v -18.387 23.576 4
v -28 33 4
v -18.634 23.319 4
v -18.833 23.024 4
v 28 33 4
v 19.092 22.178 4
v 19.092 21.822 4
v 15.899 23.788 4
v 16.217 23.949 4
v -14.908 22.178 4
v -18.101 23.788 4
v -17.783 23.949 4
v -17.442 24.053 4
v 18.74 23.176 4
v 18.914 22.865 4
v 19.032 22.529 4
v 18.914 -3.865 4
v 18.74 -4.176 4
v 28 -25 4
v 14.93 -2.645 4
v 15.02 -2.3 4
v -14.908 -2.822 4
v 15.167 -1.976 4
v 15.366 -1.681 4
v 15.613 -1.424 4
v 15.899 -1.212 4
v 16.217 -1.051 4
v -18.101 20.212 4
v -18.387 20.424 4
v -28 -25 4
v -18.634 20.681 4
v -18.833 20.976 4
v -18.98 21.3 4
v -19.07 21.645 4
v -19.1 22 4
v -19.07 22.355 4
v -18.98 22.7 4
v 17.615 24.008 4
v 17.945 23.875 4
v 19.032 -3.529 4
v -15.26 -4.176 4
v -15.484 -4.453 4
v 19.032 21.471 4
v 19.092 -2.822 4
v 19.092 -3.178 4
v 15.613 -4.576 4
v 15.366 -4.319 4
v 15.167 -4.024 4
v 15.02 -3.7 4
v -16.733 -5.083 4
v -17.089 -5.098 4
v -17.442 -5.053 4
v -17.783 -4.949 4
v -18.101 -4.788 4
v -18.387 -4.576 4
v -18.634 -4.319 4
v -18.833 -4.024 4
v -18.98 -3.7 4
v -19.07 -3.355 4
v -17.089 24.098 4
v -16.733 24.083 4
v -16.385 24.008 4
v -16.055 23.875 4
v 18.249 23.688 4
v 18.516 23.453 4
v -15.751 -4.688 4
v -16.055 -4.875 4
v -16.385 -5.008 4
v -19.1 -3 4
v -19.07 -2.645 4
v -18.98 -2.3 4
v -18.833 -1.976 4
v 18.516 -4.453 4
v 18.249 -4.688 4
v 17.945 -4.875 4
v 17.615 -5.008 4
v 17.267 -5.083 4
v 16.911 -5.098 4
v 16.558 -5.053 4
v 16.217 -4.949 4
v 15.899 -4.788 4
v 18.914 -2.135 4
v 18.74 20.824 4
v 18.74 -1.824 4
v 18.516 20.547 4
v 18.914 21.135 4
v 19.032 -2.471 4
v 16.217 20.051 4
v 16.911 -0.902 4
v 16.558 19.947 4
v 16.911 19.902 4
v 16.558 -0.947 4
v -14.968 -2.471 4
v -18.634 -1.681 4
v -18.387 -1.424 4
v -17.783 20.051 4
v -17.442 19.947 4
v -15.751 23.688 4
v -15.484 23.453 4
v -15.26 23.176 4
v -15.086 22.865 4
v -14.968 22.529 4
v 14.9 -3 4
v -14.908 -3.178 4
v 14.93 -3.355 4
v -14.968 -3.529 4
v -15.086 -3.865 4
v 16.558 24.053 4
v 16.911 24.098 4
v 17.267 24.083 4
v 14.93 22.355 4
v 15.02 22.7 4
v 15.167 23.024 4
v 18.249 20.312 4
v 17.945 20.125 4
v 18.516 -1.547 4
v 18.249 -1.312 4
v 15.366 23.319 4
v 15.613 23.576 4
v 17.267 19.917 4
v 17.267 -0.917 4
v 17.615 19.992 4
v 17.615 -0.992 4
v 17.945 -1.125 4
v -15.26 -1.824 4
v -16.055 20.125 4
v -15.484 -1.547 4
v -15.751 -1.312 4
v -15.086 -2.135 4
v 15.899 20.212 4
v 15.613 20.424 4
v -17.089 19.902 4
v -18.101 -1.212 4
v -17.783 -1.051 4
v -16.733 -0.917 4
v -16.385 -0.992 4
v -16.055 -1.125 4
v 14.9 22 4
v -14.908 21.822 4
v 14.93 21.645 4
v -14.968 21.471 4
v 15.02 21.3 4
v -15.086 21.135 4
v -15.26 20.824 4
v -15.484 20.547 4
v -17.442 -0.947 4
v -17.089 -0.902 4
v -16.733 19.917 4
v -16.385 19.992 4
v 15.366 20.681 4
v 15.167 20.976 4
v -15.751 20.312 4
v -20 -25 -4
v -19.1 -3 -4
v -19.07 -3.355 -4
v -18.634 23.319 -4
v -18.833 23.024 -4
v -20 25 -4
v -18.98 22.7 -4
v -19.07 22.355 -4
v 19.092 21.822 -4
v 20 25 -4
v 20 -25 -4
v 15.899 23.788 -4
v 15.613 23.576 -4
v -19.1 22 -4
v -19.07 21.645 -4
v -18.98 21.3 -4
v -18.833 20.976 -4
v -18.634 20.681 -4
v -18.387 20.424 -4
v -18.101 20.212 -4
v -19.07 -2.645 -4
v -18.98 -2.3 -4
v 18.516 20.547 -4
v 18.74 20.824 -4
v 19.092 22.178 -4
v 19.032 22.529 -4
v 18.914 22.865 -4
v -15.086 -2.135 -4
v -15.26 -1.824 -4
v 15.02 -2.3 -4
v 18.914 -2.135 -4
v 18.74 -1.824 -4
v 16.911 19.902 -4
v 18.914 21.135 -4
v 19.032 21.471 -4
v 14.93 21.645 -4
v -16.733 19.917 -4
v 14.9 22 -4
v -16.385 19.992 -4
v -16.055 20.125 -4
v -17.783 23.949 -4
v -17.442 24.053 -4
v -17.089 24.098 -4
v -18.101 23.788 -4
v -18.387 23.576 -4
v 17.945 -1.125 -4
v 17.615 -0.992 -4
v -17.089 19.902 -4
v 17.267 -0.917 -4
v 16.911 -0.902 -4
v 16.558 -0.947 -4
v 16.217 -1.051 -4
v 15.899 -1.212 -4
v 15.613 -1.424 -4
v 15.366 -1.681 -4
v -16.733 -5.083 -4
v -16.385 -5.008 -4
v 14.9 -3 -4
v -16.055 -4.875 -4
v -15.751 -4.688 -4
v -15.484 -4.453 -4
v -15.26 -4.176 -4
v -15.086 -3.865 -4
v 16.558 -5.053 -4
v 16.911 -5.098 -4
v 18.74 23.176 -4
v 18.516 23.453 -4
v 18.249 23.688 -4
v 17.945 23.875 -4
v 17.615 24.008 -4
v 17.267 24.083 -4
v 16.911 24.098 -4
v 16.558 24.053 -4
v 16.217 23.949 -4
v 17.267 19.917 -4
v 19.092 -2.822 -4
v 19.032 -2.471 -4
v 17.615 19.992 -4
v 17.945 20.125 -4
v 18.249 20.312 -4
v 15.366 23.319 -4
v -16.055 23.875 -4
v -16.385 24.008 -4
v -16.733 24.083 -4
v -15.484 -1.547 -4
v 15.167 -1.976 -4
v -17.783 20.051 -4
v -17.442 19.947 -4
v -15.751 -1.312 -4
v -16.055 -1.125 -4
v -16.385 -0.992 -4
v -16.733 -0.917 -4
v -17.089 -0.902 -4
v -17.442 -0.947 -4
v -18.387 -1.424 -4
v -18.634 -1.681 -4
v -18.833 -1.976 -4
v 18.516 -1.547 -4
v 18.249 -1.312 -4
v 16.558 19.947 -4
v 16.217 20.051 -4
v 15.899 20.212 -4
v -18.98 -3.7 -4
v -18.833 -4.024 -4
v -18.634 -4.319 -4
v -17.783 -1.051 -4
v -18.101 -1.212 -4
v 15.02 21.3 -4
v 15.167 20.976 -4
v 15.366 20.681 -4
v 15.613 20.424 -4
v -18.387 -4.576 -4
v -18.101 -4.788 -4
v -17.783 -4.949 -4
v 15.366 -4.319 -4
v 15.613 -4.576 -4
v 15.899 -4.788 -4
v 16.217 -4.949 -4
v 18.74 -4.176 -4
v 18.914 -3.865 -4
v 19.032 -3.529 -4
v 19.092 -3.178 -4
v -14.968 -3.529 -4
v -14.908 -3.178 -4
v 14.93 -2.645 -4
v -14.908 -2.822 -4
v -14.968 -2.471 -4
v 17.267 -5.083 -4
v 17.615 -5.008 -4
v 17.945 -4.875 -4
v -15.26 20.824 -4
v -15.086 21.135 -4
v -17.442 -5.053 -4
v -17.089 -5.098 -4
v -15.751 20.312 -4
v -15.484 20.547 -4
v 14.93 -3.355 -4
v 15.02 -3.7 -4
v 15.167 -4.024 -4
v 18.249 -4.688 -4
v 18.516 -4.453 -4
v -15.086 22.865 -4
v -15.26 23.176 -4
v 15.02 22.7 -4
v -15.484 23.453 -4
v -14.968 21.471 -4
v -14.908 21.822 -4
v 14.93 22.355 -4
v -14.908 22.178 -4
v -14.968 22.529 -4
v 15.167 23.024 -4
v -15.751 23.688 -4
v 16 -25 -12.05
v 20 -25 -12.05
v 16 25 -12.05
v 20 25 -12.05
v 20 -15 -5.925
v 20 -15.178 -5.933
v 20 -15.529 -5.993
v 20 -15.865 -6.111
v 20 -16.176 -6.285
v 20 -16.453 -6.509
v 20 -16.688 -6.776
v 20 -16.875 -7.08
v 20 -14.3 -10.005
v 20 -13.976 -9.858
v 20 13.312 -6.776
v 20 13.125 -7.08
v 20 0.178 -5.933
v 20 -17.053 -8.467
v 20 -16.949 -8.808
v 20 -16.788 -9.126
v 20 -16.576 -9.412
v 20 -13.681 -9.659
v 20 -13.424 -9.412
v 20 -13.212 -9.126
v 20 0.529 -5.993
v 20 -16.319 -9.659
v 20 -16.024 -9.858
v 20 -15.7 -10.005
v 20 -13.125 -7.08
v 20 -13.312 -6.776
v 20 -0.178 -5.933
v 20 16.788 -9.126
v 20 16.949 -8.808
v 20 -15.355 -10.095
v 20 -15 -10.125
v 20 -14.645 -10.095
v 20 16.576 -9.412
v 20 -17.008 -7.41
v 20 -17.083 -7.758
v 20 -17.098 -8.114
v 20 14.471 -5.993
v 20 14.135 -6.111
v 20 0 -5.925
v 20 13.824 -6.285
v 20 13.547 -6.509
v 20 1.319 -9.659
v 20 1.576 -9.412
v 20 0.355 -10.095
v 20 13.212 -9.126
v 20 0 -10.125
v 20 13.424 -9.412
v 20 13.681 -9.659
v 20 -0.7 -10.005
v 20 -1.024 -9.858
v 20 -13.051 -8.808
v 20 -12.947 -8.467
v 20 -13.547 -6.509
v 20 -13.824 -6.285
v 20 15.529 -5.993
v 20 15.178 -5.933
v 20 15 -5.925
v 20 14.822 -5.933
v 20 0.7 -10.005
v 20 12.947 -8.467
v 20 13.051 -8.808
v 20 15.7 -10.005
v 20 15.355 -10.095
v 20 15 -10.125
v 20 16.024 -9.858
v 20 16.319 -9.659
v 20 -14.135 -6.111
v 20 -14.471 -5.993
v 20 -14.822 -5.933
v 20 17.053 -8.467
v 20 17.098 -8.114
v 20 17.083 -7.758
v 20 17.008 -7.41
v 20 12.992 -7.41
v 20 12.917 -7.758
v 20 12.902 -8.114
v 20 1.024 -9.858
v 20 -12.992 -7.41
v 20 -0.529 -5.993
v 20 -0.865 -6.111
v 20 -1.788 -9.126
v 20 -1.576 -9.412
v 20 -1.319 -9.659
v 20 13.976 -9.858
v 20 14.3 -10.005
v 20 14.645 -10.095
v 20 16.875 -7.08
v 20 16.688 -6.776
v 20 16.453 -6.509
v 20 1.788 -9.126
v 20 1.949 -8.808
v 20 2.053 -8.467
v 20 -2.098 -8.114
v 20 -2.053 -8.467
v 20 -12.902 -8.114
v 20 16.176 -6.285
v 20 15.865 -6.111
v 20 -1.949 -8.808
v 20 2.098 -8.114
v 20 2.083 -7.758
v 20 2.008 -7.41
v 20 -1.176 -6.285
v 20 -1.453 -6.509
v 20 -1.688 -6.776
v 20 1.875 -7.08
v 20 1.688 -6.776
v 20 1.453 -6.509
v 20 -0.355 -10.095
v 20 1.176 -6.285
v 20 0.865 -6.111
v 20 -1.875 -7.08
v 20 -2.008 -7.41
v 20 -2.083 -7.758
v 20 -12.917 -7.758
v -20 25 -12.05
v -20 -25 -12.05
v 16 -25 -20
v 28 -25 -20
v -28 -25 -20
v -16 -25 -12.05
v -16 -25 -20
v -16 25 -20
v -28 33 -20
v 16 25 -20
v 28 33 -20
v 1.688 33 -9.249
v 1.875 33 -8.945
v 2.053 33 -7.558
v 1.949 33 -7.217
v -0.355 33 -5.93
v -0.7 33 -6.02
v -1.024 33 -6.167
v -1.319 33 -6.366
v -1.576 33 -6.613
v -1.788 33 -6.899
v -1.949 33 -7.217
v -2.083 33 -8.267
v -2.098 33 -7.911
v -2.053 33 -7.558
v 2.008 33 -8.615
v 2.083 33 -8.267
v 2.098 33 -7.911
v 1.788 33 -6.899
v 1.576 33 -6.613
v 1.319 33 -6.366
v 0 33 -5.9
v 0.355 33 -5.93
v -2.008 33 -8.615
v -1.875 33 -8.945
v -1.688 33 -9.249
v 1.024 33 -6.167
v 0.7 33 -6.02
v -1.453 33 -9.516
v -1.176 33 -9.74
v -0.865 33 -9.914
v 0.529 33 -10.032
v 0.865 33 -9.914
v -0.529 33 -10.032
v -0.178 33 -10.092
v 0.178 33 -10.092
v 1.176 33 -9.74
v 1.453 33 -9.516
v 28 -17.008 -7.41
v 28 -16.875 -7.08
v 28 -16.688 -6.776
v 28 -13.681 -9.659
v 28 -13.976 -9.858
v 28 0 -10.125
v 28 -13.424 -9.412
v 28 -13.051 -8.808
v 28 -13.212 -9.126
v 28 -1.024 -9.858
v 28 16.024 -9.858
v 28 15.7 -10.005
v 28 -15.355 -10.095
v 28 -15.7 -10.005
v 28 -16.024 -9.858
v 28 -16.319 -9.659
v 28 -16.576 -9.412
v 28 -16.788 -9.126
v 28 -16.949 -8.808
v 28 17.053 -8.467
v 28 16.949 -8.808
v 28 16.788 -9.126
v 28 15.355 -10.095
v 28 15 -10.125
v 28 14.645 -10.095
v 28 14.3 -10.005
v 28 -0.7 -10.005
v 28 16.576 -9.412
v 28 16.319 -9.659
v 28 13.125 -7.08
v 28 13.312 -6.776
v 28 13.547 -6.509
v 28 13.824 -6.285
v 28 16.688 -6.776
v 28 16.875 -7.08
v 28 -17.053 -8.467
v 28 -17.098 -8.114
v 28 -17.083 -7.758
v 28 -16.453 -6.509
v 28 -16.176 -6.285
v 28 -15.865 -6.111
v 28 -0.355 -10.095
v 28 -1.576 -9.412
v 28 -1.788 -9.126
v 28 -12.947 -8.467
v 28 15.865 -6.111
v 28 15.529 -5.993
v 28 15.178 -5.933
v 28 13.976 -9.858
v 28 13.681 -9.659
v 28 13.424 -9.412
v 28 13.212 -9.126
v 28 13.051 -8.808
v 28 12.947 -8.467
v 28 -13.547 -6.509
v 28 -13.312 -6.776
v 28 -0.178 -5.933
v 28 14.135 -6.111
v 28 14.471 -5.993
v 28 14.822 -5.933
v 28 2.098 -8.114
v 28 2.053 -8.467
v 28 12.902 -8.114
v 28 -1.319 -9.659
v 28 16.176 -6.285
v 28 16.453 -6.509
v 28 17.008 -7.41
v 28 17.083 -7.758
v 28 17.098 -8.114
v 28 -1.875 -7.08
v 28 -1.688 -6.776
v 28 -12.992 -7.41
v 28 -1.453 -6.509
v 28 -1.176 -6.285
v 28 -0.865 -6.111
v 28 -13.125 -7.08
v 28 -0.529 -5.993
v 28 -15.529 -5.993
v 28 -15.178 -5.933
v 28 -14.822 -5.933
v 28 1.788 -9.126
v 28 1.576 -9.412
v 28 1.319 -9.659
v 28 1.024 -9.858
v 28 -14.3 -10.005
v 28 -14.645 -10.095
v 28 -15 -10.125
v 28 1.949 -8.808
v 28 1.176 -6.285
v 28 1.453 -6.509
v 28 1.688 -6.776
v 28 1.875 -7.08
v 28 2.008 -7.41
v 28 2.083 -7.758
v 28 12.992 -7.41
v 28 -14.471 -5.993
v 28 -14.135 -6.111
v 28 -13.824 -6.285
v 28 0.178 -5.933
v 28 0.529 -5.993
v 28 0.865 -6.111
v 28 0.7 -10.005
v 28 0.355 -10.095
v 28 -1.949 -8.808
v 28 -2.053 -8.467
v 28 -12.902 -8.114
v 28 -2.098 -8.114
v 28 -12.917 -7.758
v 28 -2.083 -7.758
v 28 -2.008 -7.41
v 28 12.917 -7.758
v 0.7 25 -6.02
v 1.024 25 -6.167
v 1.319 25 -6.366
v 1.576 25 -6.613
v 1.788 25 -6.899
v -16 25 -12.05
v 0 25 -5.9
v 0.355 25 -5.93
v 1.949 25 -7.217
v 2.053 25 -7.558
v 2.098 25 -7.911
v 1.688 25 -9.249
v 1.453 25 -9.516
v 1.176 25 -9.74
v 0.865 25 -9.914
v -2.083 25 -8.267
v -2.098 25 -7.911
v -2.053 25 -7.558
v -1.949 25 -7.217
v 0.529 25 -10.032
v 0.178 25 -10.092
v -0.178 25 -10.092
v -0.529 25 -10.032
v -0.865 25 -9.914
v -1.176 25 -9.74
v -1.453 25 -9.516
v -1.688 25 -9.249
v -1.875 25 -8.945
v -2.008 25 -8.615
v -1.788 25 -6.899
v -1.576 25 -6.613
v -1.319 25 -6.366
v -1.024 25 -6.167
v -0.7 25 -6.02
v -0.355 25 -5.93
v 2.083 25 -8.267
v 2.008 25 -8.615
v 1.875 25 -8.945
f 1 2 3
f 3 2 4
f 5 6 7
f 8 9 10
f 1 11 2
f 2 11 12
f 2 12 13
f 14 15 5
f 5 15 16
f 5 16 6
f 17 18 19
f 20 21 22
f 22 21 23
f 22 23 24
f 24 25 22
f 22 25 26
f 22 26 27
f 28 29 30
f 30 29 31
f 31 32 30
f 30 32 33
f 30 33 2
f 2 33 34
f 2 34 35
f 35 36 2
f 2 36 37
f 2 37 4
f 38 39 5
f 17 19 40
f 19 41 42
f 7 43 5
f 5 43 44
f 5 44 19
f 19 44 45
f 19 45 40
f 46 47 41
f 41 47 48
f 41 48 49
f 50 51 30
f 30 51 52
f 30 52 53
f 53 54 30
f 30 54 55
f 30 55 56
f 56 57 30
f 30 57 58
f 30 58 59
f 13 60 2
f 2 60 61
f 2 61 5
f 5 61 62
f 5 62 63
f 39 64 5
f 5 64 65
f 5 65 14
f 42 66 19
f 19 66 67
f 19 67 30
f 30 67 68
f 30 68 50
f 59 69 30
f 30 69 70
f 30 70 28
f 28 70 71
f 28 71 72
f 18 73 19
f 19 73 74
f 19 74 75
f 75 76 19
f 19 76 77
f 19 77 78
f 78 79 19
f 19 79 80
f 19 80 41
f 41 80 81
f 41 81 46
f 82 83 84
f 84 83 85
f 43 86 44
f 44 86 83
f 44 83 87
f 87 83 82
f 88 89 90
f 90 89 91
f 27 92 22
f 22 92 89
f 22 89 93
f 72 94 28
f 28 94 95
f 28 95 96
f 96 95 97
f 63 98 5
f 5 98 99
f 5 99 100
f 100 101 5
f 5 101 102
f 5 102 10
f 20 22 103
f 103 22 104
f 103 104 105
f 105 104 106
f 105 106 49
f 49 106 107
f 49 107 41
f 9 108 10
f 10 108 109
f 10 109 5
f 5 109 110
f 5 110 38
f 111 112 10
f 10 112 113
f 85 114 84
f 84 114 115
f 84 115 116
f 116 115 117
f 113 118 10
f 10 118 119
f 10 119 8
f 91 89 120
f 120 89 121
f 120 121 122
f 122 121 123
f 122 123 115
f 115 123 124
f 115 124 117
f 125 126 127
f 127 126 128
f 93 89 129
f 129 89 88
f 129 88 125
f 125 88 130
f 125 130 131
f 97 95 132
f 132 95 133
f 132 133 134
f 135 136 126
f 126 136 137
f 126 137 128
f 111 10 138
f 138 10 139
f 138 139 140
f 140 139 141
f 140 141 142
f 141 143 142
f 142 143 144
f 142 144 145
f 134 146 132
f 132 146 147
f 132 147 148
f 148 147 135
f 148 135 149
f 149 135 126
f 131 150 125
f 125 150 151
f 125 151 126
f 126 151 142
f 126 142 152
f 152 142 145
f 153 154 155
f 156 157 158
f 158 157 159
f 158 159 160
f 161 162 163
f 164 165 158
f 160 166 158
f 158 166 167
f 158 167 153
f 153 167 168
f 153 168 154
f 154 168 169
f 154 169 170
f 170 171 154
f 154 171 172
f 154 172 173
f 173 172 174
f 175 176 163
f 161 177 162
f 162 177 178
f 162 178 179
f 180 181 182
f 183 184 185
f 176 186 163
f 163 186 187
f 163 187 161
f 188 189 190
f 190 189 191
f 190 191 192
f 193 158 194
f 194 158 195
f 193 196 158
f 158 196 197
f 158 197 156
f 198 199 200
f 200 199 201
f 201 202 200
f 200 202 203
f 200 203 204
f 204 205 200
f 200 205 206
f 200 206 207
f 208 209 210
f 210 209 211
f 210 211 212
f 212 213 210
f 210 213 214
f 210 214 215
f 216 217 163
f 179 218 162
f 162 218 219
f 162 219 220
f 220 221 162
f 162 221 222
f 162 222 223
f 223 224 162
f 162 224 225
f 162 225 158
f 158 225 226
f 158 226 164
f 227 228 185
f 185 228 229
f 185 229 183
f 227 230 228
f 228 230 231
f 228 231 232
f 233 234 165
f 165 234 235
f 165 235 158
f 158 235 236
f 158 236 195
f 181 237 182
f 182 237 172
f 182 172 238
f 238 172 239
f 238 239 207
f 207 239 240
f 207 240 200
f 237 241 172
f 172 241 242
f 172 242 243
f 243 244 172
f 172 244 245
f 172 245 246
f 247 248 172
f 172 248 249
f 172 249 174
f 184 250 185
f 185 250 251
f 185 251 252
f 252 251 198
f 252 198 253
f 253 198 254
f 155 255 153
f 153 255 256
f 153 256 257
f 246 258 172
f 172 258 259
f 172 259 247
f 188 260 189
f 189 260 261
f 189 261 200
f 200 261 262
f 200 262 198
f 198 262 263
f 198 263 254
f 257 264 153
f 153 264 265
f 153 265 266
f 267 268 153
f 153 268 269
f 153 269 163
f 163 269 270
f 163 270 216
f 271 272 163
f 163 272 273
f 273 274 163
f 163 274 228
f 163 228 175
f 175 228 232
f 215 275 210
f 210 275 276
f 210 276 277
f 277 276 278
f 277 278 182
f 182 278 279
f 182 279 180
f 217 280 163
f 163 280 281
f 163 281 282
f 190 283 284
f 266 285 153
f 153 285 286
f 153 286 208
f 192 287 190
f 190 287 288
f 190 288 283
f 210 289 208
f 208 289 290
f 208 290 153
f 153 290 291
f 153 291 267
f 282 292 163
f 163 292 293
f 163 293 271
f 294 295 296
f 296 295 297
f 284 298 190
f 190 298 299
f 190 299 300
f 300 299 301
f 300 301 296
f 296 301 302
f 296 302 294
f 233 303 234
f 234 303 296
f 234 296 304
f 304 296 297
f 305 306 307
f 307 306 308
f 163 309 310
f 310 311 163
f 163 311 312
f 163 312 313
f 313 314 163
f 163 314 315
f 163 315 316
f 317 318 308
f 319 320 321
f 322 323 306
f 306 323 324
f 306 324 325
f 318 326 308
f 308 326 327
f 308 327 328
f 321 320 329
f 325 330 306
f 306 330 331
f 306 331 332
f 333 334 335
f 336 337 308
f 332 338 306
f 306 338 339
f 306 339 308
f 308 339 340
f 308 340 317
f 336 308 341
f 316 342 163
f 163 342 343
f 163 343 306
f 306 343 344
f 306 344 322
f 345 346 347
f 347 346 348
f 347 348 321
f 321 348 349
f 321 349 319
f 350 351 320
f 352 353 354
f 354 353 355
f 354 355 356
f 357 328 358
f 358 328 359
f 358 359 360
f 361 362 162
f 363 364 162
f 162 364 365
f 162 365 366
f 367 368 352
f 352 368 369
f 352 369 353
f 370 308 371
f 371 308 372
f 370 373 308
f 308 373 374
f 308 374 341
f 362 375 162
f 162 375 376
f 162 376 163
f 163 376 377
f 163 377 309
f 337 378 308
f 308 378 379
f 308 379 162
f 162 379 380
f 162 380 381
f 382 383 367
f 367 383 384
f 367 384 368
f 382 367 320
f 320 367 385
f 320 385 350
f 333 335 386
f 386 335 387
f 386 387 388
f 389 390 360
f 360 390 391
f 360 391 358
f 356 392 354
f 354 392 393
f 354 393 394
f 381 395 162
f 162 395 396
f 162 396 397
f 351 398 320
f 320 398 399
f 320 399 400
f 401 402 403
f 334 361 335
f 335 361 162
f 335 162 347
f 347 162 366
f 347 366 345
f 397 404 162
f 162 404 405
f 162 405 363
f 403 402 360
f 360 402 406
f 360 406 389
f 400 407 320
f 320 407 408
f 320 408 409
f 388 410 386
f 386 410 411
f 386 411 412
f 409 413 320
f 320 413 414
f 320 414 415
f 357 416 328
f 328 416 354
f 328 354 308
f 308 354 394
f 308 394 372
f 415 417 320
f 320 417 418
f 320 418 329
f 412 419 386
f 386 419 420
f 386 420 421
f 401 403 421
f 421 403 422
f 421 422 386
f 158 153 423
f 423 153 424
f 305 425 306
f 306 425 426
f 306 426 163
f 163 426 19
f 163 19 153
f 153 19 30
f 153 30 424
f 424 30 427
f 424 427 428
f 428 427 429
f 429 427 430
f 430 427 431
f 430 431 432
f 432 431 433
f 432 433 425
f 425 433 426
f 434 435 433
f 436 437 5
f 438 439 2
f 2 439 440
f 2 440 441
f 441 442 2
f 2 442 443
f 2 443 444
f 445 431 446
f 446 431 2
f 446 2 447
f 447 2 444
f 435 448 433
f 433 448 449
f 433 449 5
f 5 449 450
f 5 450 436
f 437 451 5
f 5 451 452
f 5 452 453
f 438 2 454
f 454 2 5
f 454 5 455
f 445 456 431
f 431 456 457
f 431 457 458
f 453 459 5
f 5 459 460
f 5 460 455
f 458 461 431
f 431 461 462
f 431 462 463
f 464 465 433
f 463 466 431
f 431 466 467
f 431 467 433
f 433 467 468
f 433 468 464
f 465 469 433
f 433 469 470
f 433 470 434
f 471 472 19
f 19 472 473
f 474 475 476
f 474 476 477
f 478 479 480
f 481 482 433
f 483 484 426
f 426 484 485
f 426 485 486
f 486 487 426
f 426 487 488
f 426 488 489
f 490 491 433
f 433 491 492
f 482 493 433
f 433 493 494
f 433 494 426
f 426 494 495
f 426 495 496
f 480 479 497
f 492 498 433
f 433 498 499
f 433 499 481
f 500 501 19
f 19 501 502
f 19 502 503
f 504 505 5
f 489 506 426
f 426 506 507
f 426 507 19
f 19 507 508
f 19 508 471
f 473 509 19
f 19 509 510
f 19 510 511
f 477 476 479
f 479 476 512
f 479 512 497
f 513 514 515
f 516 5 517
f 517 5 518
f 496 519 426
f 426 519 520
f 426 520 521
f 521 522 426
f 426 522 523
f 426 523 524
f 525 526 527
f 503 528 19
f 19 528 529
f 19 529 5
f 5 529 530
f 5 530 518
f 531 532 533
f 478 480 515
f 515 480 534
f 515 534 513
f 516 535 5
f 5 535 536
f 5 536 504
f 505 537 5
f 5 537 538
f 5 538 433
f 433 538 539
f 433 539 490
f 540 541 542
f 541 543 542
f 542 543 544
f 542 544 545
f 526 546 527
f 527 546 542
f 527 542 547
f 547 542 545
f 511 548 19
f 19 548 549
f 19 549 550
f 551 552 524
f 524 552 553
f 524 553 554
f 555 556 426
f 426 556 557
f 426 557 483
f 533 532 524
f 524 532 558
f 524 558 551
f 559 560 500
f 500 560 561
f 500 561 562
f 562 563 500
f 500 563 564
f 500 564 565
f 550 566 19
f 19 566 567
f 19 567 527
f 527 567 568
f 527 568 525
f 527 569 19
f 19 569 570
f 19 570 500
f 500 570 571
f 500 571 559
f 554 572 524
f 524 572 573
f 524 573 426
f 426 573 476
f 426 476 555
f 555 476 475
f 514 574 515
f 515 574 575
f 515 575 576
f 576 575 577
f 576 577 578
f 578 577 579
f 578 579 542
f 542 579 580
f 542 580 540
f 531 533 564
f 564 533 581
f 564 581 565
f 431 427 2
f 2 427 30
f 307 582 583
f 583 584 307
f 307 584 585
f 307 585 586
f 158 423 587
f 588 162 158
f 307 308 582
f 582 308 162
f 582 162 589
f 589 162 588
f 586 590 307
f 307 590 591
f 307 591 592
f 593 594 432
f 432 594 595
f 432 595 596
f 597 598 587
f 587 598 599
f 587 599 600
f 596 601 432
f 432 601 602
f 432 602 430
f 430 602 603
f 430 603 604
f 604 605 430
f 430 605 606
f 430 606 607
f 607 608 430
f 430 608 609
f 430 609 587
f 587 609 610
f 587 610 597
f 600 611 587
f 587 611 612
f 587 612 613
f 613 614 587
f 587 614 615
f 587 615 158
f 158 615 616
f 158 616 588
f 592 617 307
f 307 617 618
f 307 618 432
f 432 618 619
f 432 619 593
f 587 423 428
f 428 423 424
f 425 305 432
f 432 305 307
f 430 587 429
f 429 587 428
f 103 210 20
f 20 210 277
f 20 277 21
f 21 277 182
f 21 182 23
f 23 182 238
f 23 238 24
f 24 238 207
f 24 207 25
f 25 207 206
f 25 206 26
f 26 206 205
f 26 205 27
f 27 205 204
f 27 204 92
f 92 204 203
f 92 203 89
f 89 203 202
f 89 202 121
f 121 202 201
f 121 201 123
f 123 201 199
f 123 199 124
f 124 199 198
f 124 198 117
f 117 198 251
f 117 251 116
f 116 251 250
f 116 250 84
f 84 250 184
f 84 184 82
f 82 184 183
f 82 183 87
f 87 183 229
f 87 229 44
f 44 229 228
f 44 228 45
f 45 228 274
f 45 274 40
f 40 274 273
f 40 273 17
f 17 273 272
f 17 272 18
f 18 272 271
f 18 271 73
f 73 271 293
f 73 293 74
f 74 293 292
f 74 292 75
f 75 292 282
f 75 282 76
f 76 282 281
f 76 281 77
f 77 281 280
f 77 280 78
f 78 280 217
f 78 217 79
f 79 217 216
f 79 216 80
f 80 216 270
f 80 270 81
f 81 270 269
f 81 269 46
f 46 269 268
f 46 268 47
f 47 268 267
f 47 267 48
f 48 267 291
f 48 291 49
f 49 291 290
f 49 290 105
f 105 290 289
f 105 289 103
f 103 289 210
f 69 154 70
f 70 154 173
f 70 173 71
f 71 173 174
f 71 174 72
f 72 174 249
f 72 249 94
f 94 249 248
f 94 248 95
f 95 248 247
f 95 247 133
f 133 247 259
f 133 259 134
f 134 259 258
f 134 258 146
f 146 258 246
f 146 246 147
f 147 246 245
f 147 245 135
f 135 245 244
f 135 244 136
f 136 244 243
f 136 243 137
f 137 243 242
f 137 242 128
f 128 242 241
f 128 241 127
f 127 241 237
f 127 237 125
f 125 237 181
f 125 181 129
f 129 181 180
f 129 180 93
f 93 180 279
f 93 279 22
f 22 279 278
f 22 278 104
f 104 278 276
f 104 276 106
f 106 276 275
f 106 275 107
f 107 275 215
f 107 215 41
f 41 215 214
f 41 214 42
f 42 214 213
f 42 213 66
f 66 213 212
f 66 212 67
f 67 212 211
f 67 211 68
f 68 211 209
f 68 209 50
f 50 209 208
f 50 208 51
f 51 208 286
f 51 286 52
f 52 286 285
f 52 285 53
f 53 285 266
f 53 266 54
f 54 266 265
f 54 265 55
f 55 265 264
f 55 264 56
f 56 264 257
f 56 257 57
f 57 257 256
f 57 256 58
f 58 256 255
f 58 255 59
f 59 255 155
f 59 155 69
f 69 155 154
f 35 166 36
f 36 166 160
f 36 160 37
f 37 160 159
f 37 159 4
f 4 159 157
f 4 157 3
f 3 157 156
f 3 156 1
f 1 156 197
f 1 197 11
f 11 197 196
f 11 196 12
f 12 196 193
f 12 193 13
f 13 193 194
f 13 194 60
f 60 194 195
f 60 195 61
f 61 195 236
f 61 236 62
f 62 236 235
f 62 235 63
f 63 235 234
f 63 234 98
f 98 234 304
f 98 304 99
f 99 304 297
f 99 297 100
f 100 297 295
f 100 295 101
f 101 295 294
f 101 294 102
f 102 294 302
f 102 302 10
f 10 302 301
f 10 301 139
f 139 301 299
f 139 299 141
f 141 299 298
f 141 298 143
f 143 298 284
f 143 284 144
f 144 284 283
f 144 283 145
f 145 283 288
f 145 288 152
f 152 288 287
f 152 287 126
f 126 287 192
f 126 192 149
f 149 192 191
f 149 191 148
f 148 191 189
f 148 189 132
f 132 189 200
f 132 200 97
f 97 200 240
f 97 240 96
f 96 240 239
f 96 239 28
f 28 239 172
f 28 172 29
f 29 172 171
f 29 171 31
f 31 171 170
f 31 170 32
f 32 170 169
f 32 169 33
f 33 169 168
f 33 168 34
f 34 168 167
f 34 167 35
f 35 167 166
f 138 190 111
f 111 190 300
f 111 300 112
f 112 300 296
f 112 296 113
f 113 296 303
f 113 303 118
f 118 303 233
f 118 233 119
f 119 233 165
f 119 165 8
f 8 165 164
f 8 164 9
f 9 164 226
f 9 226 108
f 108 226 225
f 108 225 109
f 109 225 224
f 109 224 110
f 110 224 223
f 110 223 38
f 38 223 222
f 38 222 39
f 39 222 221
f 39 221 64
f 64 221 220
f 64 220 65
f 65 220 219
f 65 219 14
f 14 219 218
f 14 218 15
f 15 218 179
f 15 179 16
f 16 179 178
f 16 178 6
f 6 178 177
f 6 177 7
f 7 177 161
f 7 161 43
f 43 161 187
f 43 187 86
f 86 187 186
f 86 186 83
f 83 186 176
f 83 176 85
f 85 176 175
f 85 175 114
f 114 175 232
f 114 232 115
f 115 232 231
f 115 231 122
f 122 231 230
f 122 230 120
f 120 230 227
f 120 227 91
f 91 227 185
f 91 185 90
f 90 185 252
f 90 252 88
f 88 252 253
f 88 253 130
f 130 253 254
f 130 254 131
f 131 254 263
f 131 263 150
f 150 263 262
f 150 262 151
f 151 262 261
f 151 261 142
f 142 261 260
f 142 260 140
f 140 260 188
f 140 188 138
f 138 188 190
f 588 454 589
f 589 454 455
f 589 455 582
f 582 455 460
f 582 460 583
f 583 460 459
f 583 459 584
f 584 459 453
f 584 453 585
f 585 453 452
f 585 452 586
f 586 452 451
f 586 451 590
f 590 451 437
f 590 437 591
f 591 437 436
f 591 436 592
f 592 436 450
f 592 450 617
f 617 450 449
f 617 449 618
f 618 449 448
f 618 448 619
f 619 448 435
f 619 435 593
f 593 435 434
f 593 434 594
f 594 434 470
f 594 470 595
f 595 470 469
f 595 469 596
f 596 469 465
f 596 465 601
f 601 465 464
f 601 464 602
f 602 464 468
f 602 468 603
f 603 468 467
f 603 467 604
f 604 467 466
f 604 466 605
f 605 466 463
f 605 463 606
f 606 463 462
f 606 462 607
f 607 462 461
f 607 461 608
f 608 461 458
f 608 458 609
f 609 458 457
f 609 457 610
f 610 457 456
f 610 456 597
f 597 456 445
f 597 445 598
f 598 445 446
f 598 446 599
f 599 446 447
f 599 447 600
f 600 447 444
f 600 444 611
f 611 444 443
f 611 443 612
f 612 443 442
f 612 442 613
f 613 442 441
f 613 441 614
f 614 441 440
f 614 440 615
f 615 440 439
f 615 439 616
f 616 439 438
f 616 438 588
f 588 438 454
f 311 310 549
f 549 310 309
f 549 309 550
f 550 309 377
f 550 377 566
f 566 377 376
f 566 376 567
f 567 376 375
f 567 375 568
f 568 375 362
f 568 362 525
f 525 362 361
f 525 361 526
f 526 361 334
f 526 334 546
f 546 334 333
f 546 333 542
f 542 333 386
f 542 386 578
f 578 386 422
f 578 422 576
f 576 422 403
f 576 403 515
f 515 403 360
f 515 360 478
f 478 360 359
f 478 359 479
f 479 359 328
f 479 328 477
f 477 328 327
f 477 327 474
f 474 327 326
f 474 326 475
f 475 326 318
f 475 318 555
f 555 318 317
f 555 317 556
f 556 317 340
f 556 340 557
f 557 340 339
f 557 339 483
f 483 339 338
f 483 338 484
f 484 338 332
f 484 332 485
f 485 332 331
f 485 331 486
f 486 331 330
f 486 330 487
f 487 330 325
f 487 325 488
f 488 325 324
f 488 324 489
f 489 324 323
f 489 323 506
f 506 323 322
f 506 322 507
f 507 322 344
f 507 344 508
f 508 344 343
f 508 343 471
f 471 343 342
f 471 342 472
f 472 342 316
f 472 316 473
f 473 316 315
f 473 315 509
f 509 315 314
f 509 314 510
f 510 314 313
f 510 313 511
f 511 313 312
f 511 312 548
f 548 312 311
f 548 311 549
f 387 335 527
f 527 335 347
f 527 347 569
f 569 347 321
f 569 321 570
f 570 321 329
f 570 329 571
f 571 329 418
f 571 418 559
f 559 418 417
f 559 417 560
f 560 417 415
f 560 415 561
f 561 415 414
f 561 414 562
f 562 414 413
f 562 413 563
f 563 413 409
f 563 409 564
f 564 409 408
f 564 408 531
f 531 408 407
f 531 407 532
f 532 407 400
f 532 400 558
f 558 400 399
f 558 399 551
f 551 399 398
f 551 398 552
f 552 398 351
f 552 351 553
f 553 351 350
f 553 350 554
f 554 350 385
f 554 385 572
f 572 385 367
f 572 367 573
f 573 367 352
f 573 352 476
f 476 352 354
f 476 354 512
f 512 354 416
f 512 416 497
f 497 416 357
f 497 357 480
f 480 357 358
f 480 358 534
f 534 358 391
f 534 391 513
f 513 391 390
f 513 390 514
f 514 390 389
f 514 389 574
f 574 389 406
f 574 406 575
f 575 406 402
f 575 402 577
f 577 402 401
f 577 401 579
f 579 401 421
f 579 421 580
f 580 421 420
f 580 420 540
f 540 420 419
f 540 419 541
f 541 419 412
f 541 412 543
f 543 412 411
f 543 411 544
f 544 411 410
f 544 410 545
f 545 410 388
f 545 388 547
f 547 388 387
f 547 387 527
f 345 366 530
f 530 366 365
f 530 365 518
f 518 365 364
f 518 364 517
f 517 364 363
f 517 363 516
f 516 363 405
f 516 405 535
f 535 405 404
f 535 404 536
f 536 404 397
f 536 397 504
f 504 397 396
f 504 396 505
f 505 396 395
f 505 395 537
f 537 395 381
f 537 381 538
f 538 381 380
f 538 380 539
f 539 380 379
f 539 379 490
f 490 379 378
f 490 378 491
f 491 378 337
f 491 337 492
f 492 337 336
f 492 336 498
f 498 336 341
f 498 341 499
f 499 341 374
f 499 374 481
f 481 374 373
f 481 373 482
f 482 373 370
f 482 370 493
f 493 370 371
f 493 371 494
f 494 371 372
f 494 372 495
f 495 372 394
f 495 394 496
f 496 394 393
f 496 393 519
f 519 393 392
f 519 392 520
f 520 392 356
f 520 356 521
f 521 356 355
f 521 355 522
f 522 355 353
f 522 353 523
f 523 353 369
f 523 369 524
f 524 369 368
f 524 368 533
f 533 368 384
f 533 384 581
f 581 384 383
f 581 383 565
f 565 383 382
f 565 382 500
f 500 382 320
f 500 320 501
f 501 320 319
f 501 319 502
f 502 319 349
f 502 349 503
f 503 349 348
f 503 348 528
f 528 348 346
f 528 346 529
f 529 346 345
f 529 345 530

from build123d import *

# Parameters (mm, degrees)
SKETCH1_W             = 40
SKETCH1_H             = 50
BOSS_EXTRUDE1_DEPTH   = 4
SKETCH2_W             = 24
SKETCH2_H             = 58
BOSS_EXTRUDE2_DEPTH   = 8
SKETCH4_W             = 24
SKETCH4_H             = 58
BOSS_EXTRUDE3_DEPTH   = 8
BOSS_EXTRUDE5_DEPTH   = 40
SKETCH6_W             = 32
SKETCH6_H             = 50
CUT_EXTRUDE1_DEPTH    = 8
M5_TAPPED_HOLE3_D     = 4.2
M5_TAPPED_HOLE3_DEPTH = 8
M5_TAPPED_HOLE4_D     = 4.2
M5_TAPPED_HOLE5_D     = 4.2
M5_TAPPED_HOLE5_DEPTH = 8


with BuildPart() as part:
    # Sketch1 → Boss-Extrude1 (new, symmetric)
    with BuildSketch(Plane.XY):
        Rectangle(SKETCH1_W, SKETCH1_H)
    extrude(amount=BOSS_EXTRUDE1_DEPTH, both=True)

    # Sketch2 → Boss-Extrude2 (add)
    with BuildSketch(Plane(origin=(20, 0, 0), x_dir=(0, 0, -1), z_dir=(1, 0, 0))):
        with Locations((8, 4)):
            Rectangle(SKETCH2_W, SKETCH2_H)
    extrude(amount=BOSS_EXTRUDE2_DEPTH)

    # Sketch4 → Boss-Extrude3 (add)
    with BuildSketch(Plane.ZY.offset(20)):
        with Locations((-8, 4)):
            Rectangle(SKETCH4_W, SKETCH4_H)
    extrude(amount=BOSS_EXTRUDE3_DEPTH)

    # Sketch5 → Boss-Extrude5 (add)
    with BuildSketch(Plane.ZY.offset(-20)):
        Polygon((-20, -25), (-20, 33), (4, 33), (4, 25), (-12.05, 25), (-12.05, -25), align=None)
    extrude(amount=BOSS_EXTRUDE5_DEPTH)

    # Sketch6 → Cut-Extrude1 (cut)
    with BuildSketch(Plane(origin=(0, 0, -20), x_dir=(-1, 0, 0), z_dir=(0, 0, -1))):
        Rectangle(SKETCH6_W, SKETCH6_H)
    extrude(amount=-CUT_EXTRUDE1_DEPTH, mode=Mode.SUBTRACT)

    # M5 Tapped Hole3
    with Locations(Plane(origin=(0, 0, -4), x_dir=(-1, 0, 0), z_dir=(0, 0, -1))):
        with Locations((-17, 22), (17, 22), (17, -3), (-17, -3)):
            Hole(M5_TAPPED_HOLE3_D / 2, depth=M5_TAPPED_HOLE3_DEPTH)

    # M5 Tapped Hole4 (through all)
    with Locations(Plane(origin=(0, 33, 0), x_dir=(1, 0, 0), z_dir=(0, 1, 0))):
        with Locations((0, 8)):
            Hole(M5_TAPPED_HOLE4_D / 2)

    # M5 Tapped Hole5
    with Locations(Plane(origin=(28, 0, 0), x_dir=(0, 0, -1), z_dir=(1, 0, 0))):
        with Locations((8.025, 15), (8.025, 0), (8.025, -15)):
            Hole(M5_TAPPED_HOLE5_D / 2, depth=M5_TAPPED_HOLE5_DEPTH)


solid = part.part
